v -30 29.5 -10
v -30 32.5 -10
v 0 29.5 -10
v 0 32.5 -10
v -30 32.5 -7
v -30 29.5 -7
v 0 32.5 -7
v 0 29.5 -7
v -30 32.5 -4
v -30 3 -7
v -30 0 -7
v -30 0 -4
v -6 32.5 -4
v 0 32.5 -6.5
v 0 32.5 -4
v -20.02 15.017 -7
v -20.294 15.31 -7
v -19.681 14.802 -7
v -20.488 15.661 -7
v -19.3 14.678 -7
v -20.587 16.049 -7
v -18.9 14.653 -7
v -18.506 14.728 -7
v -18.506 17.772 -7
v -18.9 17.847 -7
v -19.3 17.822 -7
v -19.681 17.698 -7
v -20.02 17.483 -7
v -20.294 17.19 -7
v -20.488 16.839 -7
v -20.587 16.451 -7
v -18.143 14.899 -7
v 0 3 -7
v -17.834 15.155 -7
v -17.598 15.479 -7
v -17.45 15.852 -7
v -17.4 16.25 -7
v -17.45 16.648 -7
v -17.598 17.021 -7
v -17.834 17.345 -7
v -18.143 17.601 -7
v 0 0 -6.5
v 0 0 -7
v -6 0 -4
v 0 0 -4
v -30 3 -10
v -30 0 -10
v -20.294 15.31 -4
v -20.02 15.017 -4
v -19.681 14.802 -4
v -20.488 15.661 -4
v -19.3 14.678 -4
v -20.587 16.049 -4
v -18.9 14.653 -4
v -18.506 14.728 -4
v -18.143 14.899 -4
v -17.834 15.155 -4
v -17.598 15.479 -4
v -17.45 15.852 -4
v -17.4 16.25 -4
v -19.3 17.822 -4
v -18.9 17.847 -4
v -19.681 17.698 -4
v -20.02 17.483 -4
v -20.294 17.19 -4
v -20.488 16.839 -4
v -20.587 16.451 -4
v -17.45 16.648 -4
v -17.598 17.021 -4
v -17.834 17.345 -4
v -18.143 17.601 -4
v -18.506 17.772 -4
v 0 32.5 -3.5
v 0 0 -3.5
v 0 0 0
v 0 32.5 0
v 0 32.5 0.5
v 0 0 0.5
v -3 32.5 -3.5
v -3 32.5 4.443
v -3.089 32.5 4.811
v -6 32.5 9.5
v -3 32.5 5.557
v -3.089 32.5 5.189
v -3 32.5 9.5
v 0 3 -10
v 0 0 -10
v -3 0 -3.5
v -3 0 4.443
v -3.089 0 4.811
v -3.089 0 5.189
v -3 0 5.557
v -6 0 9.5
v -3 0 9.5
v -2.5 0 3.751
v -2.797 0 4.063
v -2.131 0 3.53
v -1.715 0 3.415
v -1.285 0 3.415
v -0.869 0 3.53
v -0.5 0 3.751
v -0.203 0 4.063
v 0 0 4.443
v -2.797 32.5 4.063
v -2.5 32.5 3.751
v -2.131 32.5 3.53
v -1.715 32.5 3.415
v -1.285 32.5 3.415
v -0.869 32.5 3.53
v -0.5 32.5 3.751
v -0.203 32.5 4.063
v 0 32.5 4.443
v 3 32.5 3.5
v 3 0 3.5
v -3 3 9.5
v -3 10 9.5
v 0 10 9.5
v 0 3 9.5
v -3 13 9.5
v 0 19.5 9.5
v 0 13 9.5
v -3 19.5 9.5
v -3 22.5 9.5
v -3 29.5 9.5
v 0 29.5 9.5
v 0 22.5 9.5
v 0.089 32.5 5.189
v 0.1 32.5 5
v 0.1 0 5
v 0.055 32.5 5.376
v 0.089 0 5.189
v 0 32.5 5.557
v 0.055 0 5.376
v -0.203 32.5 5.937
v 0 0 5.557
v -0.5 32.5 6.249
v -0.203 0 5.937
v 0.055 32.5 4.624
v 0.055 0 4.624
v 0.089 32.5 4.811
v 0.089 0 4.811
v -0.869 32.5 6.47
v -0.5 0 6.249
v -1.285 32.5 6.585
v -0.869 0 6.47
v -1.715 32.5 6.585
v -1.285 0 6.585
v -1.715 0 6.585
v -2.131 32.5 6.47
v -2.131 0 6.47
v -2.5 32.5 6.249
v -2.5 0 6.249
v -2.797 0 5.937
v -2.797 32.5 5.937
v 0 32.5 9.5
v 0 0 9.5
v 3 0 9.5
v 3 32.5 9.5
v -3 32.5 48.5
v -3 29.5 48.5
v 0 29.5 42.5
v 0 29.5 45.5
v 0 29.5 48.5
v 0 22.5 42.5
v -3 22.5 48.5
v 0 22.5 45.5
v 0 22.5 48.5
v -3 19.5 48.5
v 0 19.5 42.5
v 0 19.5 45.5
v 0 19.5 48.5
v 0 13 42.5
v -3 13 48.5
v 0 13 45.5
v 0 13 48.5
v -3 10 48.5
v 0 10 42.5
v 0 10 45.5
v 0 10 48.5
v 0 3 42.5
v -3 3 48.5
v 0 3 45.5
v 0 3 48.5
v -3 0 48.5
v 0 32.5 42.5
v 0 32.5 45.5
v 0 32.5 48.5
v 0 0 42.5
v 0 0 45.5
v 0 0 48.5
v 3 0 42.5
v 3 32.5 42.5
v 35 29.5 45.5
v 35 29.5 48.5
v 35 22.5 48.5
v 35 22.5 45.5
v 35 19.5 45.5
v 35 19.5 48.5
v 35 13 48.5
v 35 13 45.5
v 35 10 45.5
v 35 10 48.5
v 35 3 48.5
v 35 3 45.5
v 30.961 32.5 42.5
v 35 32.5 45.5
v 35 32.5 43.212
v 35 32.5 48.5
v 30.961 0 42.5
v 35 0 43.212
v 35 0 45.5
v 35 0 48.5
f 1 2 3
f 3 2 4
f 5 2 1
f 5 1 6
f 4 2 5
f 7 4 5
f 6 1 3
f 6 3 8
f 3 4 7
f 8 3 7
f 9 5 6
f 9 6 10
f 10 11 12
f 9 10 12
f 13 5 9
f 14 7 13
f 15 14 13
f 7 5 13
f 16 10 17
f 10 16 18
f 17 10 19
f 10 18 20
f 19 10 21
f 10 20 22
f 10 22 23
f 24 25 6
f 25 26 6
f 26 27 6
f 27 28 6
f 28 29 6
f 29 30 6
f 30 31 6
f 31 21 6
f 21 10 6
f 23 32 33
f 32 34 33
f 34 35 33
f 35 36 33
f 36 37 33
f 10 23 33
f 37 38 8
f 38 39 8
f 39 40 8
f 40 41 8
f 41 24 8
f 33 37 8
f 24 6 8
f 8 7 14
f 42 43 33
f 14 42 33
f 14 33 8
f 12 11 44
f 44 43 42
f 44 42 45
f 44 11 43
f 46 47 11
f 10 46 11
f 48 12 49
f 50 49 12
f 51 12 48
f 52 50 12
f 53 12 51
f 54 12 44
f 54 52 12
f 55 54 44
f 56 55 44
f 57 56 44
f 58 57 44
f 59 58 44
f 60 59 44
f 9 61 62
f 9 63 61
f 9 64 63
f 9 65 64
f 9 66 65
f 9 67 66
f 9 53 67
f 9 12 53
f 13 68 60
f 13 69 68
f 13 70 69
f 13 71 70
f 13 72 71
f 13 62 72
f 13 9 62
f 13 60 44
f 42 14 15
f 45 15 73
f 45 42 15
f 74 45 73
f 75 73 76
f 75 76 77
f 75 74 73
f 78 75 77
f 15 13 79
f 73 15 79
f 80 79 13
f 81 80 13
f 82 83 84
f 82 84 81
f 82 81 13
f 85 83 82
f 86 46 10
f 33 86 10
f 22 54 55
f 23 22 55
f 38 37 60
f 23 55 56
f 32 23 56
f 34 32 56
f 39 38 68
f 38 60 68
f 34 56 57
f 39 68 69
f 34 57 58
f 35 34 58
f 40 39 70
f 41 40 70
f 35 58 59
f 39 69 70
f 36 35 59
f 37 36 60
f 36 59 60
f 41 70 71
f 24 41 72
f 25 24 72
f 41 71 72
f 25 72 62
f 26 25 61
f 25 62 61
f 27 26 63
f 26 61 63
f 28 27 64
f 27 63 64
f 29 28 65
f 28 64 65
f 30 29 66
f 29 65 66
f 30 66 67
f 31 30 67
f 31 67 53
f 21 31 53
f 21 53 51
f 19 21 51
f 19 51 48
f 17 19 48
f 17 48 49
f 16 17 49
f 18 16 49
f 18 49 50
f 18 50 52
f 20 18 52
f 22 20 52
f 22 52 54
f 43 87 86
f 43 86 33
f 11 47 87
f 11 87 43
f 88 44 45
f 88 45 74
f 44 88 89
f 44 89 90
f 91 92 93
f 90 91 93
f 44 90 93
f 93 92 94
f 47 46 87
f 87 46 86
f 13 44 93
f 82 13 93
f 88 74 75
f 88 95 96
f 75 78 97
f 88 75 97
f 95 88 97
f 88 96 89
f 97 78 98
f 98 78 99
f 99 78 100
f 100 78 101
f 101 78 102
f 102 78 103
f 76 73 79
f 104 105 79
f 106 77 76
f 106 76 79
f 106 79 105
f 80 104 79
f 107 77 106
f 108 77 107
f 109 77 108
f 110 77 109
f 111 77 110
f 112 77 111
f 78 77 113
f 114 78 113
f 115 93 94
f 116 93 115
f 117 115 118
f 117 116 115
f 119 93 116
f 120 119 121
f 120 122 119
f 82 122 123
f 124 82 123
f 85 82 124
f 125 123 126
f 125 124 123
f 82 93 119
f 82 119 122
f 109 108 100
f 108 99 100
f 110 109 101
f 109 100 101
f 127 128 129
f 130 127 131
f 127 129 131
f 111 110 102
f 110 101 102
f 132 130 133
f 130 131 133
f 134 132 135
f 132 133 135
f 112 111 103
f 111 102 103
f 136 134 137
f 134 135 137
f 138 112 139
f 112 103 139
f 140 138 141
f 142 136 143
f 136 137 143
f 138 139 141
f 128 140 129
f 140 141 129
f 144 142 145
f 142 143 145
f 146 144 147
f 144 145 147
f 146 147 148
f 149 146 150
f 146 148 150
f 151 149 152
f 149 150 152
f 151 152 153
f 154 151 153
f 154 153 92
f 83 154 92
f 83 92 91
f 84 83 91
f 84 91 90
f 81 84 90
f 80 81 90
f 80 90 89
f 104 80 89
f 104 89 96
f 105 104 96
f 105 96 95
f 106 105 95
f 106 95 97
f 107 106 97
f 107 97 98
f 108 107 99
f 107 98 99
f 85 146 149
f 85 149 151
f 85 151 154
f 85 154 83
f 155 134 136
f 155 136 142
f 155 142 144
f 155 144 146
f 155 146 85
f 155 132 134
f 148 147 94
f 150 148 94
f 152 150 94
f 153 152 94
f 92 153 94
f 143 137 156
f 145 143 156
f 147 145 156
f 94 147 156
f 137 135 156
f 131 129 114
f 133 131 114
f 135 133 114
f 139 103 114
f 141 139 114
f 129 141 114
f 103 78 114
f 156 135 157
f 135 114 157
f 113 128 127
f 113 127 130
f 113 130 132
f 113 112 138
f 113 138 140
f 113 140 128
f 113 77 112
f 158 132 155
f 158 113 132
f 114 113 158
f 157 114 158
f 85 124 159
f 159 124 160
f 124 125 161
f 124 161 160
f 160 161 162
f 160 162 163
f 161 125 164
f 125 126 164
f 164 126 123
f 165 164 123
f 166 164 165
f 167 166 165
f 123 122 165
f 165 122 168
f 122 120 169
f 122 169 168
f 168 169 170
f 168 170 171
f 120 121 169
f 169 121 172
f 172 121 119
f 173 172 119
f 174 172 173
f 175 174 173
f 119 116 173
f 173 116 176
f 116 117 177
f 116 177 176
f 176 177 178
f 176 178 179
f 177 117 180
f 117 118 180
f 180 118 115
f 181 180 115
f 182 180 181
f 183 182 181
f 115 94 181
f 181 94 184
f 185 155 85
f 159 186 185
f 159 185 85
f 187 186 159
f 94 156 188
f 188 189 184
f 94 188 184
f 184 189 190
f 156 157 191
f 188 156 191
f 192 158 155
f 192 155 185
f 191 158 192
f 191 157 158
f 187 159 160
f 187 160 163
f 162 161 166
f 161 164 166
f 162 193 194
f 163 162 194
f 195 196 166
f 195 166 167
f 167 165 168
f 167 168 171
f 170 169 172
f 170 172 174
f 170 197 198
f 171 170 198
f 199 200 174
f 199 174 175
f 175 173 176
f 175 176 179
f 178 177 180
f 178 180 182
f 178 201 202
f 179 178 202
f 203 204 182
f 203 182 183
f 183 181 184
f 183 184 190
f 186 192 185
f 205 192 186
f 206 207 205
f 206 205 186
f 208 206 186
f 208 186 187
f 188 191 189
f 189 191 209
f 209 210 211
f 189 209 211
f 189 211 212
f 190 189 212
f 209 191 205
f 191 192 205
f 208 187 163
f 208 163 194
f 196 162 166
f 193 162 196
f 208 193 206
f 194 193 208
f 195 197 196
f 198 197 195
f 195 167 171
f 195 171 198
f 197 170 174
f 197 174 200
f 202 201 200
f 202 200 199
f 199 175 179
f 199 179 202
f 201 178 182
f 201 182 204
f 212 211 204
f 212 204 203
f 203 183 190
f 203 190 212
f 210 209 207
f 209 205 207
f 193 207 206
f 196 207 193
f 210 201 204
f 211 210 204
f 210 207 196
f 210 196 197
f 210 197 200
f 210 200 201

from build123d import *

# Parameters (mm, degrees)
BOX017_W               = 5
BOX017_H               = 32.5
BOX017_DEPTH           = 5
BOX017_PITCH_ANGLE     = 45
BOX016_W               = 3
BOX016_H               = 32.5
BOX016_DEPTH           = 15
CYLINDER001_R          = 1.6
CYLINDER001_DEPTH      = 35
CYLINDER001_ROLL_ANGLE = 90
CYLINDER_R             = 1.6
CYLINDER_DEPTH         = 10
BOX006_W               = 10
BOX006_H               = 32.5
BOX006_DEPTH           = 10
BOX006_PITCH_ANGLE     = -10
BOX001_W               = 35
BOX001_H               = 32.5
BOX001_DEPTH           = 3
BOX002_W               = 35
BOX002_H               = 3
BOX002_DEPTH           = 3
BOX003_W               = 35
BOX003_H               = 3
BOX003_DEPTH           = 3
BOX004_W               = 35
BOX004_H               = 3
BOX004_DEPTH           = 3
BOX005_W               = 35
BOX005_H               = 3
BOX005_DEPTH           = 3
BOX007_W               = 9
BOX007_H               = 32.5
BOX007_DEPTH           = 13.5
BOX008_W               = 3
BOX008_H               = 3
BOX008_DEPTH           = 52
BOX009_W               = 3
BOX009_H               = 3
BOX009_DEPTH           = 52
BOX010_W               = 3
BOX010_H               = 3
BOX010_DEPTH           = 52
BOX011_W               = 3
BOX011_H               = 3
BOX011_DEPTH           = 52
BOX012_W               = 3
BOX012_H               = 32.5
BOX012_DEPTH           = 6.5
BOX013_W               = 30
BOX013_H               = 32.5
BOX013_DEPTH           = 3
BOX014_W               = 30
BOX014_H               = 3
BOX014_DEPTH           = 3
BOX015_W               = 30
BOX015_H               = 3
BOX015_DEPTH           = 3
BOX_W                  = 3
BOX_H                  = 32.5
BOX_DEPTH              = 42.5


with BuildPart() as cube017:
    # Box017 → Box017 (new body)
    with BuildSketch(Plane.XY):
        with Locations((2.5, 16.25)):
            Rectangle(BOX017_W, BOX017_H)
    extrude(amount=BOX017_DEPTH)


with BuildPart() as cube017_1:
    # Box017 pitch: moved
    add(cube017.part.rotate(Axis((0, 0, 0), (0, 1, 0)), BOX017_PITCH_ANGLE))


with BuildPart() as cube017_2:
    # Box017 placement: moved
    add(cube017_1.part.moved(Location((0, 0, 0.5))))


with BuildPart() as cube016:
    # Box016 → Box016 (new body)
    with BuildSketch(Plane.XY.offset(-14.5)):
        with Locations((1.5, 16.25)):
            Rectangle(BOX016_W, BOX016_H)
    extrude(amount=BOX016_DEPTH)


with BuildPart() as cylinder001:
    # Cylinder001 → Cylinder001 (new body)
    with BuildSketch(Plane.XY):
        Circle(CYLINDER001_R)
    extrude(amount=CYLINDER001_DEPTH)


with BuildPart() as cylinder001_1:
    # Cylinder001 roll: moved
    add(cylinder001.part.rotate(Axis((0, 0, 0), (1, 0, 0)), CYLINDER001_ROLL_ANGLE))


with BuildPart() as cylinder001_2:
    # Cylinder001 placement: moved
    add(cylinder001_1.part.moved(Location((-1.5, 33, 5))))


with BuildPart() as cylinder:
    # Cylinder → Cylinder (new body)
    with BuildSketch(Plane(origin=(-19, 16.25, -8), x_dir=(1, 0, 0), z_dir=(0, 0, 1))):
        Circle(CYLINDER_R)
    extrude(amount=CYLINDER_DEPTH)


with BuildPart() as cube006:
    # Box006 → Box006 (new body)
    with BuildSketch(Plane.XY):
        with Locations((5, 16.25)):
            Rectangle(BOX006_W, BOX006_H)
    extrude(amount=BOX006_DEPTH)


with BuildPart() as cube006_1:
    # Box006 pitch: moved
    add(cube006.part.rotate(Axis((0, 0, 0), (0, 1, 0)), BOX006_PITCH_ANGLE))


with BuildPart() as cube006_2:
    # Box006 placement: moved
    add(cube006_1.part.moved(Location((29, 0, 32))))


with BuildPart() as cube001:
    # Box001 → Box001 (new body)
    with BuildSketch(Plane.XY.offset(42.5)):
        with Locations((17.5, 16.25)):
            Rectangle(BOX001_W, BOX001_H)
    extrude(amount=BOX001_DEPTH)


with BuildPart() as cube002:
    # Box002 → Box002 (new body)
    with BuildSketch(Plane.XY.offset(45.5)):
        with Locations((17.5, 1.5)):
            Rectangle(BOX002_W, BOX002_H)
    extrude(amount=BOX002_DEPTH)


with BuildPart() as cube003:
    # Box003 → Box003 (new body)
    with BuildSketch(Plane(origin=(0, 29.5, 45.5), x_dir=(1, 0, 0), z_dir=(0, 0, 1))):
        with Locations((17.5, 1.5)):
            Rectangle(BOX003_W, BOX003_H)
    extrude(amount=BOX003_DEPTH)


with BuildPart() as cube004:
    # Box004 → Box004 (new body)
    with BuildSketch(Plane(origin=(0, 10, 45.5), x_dir=(1, 0, 0), z_dir=(0, 0, 1))):
        with Locations((17.5, 1.5)):
            Rectangle(BOX004_W, BOX004_H)
    extrude(amount=BOX004_DEPTH)


with BuildPart() as cube005:
    # Box005 → Box005 (new body)
    with BuildSketch(Plane(origin=(0, 19.5, 45.5), x_dir=(1, 0, 0), z_dir=(0, 0, 1))):
        with Locations((17.5, 1.5)):
            Rectangle(BOX005_W, BOX005_H)
    extrude(amount=BOX005_DEPTH)


with BuildPart() as cube007:
    # Box007 → Box007 (new body)
    with BuildSketch(Plane(origin=(-6, 0, -4), x_dir=(1, 0, 0), z_dir=(0, 0, 1))):
        with Locations((4.5, 16.25)):
            Rectangle(BOX007_W, BOX007_H)
    extrude(amount=BOX007_DEPTH)


with BuildPart() as cube008:
    # Box008 → Box008 (new body)
    with BuildSketch(Plane(origin=(-3, 0, -3.5), x_dir=(1, 0, 0), z_dir=(0, 0, 1))):
        with Locations((1.5, 1.5)):
            Rectangle(BOX008_W, BOX008_H)
    extrude(amount=BOX008_DEPTH)


with BuildPart() as cube009:
    # Box009 → Box009 (new body)
    with BuildSketch(Plane(origin=(-3, 29.5, -3.5), x_dir=(1, 0, 0), z_dir=(0, 0, 1))):
        with Locations((1.5, 1.5)):
            Rectangle(BOX009_W, BOX009_H)
    extrude(amount=BOX009_DEPTH)


with BuildPart() as cube010:
    # Box010 → Box010 (new body)
    with BuildSketch(Plane(origin=(-3, 19.5, -3.5), x_dir=(1, 0, 0), z_dir=(0, 0, 1))):
        with Locations((1.5, 1.5)):
            Rectangle(BOX010_W, BOX010_H)
    extrude(amount=BOX010_DEPTH)


with BuildPart() as cube011:
    # Box011 → Box011 (new body)
    with BuildSketch(Plane(origin=(-3, 10, -3.5), x_dir=(1, 0, 0), z_dir=(0, 0, 1))):
        with Locations((1.5, 1.5)):
            Rectangle(BOX011_W, BOX011_H)
    extrude(amount=BOX011_DEPTH)


with BuildPart() as cube012:
    # Box012 → Box012 (new body)
    with BuildSketch(Plane.XY.offset(-6.5)):
        with Locations((1.5, 16.25)):
            Rectangle(BOX012_W, BOX012_H)
    extrude(amount=BOX012_DEPTH)


with BuildPart() as cube013:
    # Box013 → Box013 (new body)
    with BuildSketch(Plane(origin=(-30, 0, -7), x_dir=(1, 0, 0), z_dir=(0, 0, 1))):
        with Locations((15, 16.25)):
            Rectangle(BOX013_W, BOX013_H)
    extrude(amount=BOX013_DEPTH)


with BuildPart() as cube014:
    # Box014 → Box014 (new body)
    with BuildSketch(Plane(origin=(-30, 0, -10), x_dir=(1, 0, 0), z_dir=(0, 0, 1))):
        with Locations((15, 1.5)):
            Rectangle(BOX014_W, BOX014_H)
    extrude(amount=BOX014_DEPTH)


with BuildPart() as cube015:
    # Box015 → Box015 (new body)
    with BuildSketch(Plane(origin=(-30, 29.5, -10), x_dir=(1, 0, 0), z_dir=(0, 0, 1))):
        with Locations((15, 1.5)):
            Rectangle(BOX015_W, BOX015_H)
    extrude(amount=BOX015_DEPTH)


with BuildPart() as cut004:
    # Box → Box (new body)
    with BuildSketch(Plane.XY):
        with Locations((1.5, 16.25)):
            Rectangle(BOX_W, BOX_H)
    extrude(amount=BOX_DEPTH)

    # Fusion: union Cube001, Cube002, Cube003, Cube004, Cube005, Cube007, Cube008, Cube009, Cube010, Cube011, Cube012, Cube013, Cube014, Cube015
    add(cube001.part)
    add(cube002.part)
    add(cube003.part)
    add(cube004.part)
    add(cube005.part)
    add(cube007.part)
    add(cube008.part)
    add(cube009.part)
    add(cube010.part)
    add(cube011.part)
    add(cube012.part)
    add(cube013.part)
    add(cube014.part)
    add(cube015.part)

    # Cut: cut Cube006
    add(cube006_2.part, mode=Mode.SUBTRACT)

    # Cut001: cut Cylinder
    add(cylinder.part, mode=Mode.SUBTRACT)

    # Cut002: cut Cylinder001
    add(cylinder001_2.part, mode=Mode.SUBTRACT)

    # Cut003: cut Cube016
    add(cube016.part, mode=Mode.SUBTRACT)

    # Cut004: cut Cube017
    add(cube017_2.part, mode=Mode.SUBTRACT)


solid = cut004.part
